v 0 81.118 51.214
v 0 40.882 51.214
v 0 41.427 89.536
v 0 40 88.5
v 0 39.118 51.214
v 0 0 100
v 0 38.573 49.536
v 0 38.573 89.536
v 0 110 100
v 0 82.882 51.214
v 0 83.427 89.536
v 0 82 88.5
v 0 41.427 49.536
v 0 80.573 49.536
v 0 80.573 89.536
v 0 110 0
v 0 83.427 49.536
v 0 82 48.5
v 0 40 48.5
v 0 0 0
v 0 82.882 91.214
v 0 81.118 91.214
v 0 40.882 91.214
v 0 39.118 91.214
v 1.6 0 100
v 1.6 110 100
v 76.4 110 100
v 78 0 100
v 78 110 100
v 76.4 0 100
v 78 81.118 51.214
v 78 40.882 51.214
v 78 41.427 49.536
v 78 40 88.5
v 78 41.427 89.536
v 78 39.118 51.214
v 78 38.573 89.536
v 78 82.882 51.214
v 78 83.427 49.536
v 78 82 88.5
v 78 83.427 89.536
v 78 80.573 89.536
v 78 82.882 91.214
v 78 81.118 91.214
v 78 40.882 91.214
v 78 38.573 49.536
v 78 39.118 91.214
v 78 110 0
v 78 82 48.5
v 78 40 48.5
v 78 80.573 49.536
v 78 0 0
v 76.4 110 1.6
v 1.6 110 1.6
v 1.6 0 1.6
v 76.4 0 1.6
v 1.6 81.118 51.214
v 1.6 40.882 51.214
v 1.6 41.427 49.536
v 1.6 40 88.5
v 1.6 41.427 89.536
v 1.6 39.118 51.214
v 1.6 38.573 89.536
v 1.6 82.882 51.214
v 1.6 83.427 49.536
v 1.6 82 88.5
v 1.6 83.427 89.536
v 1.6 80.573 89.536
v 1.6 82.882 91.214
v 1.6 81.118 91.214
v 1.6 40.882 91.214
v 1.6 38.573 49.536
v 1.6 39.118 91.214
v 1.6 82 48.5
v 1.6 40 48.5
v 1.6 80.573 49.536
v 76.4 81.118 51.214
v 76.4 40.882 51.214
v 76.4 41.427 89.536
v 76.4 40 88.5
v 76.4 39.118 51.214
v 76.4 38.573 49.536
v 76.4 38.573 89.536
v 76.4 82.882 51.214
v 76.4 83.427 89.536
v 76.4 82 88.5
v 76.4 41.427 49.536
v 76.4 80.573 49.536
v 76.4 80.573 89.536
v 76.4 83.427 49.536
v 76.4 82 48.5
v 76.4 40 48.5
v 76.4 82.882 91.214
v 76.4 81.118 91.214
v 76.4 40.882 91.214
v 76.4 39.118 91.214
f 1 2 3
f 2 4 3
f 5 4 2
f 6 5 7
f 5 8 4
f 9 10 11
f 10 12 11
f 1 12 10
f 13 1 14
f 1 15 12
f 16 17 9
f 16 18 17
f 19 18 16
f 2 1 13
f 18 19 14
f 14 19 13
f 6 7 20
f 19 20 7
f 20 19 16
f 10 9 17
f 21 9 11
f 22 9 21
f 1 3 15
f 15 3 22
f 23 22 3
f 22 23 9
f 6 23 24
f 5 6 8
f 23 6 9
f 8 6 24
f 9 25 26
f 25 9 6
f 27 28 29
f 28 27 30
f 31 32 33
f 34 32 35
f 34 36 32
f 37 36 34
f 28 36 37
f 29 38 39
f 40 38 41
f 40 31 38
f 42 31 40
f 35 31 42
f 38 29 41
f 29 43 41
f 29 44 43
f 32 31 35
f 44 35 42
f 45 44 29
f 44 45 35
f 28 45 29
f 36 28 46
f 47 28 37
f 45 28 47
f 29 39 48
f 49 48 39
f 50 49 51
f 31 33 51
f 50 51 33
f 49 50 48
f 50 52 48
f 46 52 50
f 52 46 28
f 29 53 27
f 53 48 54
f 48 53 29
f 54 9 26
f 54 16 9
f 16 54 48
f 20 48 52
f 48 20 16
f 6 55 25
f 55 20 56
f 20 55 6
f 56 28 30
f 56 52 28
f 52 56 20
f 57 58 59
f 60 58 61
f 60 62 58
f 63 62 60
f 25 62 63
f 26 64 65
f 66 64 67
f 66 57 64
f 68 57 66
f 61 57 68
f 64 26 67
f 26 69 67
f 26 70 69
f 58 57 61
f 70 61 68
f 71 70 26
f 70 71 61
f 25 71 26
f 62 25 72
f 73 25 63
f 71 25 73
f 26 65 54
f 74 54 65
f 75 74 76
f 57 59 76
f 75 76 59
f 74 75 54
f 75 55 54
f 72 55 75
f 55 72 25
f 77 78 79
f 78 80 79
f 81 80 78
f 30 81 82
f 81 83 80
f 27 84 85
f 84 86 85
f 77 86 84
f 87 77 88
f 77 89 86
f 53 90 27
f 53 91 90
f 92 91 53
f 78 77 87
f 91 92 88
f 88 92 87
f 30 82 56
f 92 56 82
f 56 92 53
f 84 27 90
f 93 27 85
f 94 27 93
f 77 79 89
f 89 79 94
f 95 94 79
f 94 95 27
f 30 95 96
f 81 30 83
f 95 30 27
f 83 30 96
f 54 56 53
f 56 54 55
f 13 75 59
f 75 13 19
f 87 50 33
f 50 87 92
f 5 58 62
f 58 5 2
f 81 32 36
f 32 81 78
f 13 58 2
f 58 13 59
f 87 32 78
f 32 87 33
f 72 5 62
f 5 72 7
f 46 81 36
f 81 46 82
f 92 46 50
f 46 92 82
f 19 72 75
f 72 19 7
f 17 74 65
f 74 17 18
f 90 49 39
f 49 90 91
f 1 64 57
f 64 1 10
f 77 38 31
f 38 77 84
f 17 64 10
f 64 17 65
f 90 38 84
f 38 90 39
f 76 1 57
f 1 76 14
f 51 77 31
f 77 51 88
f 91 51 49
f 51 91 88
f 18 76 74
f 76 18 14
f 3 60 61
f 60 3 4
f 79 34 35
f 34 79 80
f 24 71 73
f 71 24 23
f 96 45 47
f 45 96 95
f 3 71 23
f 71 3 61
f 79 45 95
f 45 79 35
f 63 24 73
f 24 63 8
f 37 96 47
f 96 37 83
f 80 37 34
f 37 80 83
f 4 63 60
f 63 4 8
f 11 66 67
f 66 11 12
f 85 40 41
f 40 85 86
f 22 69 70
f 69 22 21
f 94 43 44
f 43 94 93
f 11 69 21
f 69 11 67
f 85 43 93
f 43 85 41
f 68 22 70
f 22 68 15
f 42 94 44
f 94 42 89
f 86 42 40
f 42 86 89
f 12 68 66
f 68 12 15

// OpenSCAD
thickness = 1.6;

bus_left_height = 20;
bus_right_height = 10;
pcb_thickness = 1.6;
pcb_hole_height = 50;
pcb_hole_y = 40;
pcb_spacing_y = 42;
pcb_spacing_z = 40;
depth = 100;
pi_zeros = 3;
m3_rad = 1.5;

total_width = (pi_zeros * ( bus_left_height + pcb_thickness)) + bus_right_height;
total_depth = 110;
total_height = 100;

translate([0,0,0])
{
    difference()
    {
        cube([total_width + pcb_thickness + pcb_thickness, total_depth, total_height]);
        translate([pcb_thickness, 0, pcb_thickness])
            cube([total_width, total_depth, total_height]);
        translate([0, pcb_hole_y, pcb_hole_height])
            rotate([0, 90, 0])
                cylinder(h = total_width + pcb_thickness + pcb_thickness, 
                    r1 = m3_rad,r2 = m3_rad);
        translate([0, pcb_hole_y + pcb_spacing_y, pcb_hole_height])
            rotate([0, 90, 0])
                cylinder(h = total_width + pcb_thickness + pcb_thickness, 
                    r1 = m3_rad,r2 = m3_rad);
        
        translate([0, pcb_hole_y, pcb_hole_height + pcb_spacing_z])
            rotate([0, 90, 0])
                cylinder(h = total_width + pcb_thickness + pcb_thickness, 
                    r1 = m3_rad,r2 = m3_rad);
        translate([0, pcb_hole_y + pcb_spacing_y, pcb_hole_height + pcb_spacing_z])
            rotate([0, 90, 0])
                cylinder(h = total_width + pcb_thickness + pcb_thickness, 
                    r1 = m3_rad,r2 = m3_rad);
        
    }
}
